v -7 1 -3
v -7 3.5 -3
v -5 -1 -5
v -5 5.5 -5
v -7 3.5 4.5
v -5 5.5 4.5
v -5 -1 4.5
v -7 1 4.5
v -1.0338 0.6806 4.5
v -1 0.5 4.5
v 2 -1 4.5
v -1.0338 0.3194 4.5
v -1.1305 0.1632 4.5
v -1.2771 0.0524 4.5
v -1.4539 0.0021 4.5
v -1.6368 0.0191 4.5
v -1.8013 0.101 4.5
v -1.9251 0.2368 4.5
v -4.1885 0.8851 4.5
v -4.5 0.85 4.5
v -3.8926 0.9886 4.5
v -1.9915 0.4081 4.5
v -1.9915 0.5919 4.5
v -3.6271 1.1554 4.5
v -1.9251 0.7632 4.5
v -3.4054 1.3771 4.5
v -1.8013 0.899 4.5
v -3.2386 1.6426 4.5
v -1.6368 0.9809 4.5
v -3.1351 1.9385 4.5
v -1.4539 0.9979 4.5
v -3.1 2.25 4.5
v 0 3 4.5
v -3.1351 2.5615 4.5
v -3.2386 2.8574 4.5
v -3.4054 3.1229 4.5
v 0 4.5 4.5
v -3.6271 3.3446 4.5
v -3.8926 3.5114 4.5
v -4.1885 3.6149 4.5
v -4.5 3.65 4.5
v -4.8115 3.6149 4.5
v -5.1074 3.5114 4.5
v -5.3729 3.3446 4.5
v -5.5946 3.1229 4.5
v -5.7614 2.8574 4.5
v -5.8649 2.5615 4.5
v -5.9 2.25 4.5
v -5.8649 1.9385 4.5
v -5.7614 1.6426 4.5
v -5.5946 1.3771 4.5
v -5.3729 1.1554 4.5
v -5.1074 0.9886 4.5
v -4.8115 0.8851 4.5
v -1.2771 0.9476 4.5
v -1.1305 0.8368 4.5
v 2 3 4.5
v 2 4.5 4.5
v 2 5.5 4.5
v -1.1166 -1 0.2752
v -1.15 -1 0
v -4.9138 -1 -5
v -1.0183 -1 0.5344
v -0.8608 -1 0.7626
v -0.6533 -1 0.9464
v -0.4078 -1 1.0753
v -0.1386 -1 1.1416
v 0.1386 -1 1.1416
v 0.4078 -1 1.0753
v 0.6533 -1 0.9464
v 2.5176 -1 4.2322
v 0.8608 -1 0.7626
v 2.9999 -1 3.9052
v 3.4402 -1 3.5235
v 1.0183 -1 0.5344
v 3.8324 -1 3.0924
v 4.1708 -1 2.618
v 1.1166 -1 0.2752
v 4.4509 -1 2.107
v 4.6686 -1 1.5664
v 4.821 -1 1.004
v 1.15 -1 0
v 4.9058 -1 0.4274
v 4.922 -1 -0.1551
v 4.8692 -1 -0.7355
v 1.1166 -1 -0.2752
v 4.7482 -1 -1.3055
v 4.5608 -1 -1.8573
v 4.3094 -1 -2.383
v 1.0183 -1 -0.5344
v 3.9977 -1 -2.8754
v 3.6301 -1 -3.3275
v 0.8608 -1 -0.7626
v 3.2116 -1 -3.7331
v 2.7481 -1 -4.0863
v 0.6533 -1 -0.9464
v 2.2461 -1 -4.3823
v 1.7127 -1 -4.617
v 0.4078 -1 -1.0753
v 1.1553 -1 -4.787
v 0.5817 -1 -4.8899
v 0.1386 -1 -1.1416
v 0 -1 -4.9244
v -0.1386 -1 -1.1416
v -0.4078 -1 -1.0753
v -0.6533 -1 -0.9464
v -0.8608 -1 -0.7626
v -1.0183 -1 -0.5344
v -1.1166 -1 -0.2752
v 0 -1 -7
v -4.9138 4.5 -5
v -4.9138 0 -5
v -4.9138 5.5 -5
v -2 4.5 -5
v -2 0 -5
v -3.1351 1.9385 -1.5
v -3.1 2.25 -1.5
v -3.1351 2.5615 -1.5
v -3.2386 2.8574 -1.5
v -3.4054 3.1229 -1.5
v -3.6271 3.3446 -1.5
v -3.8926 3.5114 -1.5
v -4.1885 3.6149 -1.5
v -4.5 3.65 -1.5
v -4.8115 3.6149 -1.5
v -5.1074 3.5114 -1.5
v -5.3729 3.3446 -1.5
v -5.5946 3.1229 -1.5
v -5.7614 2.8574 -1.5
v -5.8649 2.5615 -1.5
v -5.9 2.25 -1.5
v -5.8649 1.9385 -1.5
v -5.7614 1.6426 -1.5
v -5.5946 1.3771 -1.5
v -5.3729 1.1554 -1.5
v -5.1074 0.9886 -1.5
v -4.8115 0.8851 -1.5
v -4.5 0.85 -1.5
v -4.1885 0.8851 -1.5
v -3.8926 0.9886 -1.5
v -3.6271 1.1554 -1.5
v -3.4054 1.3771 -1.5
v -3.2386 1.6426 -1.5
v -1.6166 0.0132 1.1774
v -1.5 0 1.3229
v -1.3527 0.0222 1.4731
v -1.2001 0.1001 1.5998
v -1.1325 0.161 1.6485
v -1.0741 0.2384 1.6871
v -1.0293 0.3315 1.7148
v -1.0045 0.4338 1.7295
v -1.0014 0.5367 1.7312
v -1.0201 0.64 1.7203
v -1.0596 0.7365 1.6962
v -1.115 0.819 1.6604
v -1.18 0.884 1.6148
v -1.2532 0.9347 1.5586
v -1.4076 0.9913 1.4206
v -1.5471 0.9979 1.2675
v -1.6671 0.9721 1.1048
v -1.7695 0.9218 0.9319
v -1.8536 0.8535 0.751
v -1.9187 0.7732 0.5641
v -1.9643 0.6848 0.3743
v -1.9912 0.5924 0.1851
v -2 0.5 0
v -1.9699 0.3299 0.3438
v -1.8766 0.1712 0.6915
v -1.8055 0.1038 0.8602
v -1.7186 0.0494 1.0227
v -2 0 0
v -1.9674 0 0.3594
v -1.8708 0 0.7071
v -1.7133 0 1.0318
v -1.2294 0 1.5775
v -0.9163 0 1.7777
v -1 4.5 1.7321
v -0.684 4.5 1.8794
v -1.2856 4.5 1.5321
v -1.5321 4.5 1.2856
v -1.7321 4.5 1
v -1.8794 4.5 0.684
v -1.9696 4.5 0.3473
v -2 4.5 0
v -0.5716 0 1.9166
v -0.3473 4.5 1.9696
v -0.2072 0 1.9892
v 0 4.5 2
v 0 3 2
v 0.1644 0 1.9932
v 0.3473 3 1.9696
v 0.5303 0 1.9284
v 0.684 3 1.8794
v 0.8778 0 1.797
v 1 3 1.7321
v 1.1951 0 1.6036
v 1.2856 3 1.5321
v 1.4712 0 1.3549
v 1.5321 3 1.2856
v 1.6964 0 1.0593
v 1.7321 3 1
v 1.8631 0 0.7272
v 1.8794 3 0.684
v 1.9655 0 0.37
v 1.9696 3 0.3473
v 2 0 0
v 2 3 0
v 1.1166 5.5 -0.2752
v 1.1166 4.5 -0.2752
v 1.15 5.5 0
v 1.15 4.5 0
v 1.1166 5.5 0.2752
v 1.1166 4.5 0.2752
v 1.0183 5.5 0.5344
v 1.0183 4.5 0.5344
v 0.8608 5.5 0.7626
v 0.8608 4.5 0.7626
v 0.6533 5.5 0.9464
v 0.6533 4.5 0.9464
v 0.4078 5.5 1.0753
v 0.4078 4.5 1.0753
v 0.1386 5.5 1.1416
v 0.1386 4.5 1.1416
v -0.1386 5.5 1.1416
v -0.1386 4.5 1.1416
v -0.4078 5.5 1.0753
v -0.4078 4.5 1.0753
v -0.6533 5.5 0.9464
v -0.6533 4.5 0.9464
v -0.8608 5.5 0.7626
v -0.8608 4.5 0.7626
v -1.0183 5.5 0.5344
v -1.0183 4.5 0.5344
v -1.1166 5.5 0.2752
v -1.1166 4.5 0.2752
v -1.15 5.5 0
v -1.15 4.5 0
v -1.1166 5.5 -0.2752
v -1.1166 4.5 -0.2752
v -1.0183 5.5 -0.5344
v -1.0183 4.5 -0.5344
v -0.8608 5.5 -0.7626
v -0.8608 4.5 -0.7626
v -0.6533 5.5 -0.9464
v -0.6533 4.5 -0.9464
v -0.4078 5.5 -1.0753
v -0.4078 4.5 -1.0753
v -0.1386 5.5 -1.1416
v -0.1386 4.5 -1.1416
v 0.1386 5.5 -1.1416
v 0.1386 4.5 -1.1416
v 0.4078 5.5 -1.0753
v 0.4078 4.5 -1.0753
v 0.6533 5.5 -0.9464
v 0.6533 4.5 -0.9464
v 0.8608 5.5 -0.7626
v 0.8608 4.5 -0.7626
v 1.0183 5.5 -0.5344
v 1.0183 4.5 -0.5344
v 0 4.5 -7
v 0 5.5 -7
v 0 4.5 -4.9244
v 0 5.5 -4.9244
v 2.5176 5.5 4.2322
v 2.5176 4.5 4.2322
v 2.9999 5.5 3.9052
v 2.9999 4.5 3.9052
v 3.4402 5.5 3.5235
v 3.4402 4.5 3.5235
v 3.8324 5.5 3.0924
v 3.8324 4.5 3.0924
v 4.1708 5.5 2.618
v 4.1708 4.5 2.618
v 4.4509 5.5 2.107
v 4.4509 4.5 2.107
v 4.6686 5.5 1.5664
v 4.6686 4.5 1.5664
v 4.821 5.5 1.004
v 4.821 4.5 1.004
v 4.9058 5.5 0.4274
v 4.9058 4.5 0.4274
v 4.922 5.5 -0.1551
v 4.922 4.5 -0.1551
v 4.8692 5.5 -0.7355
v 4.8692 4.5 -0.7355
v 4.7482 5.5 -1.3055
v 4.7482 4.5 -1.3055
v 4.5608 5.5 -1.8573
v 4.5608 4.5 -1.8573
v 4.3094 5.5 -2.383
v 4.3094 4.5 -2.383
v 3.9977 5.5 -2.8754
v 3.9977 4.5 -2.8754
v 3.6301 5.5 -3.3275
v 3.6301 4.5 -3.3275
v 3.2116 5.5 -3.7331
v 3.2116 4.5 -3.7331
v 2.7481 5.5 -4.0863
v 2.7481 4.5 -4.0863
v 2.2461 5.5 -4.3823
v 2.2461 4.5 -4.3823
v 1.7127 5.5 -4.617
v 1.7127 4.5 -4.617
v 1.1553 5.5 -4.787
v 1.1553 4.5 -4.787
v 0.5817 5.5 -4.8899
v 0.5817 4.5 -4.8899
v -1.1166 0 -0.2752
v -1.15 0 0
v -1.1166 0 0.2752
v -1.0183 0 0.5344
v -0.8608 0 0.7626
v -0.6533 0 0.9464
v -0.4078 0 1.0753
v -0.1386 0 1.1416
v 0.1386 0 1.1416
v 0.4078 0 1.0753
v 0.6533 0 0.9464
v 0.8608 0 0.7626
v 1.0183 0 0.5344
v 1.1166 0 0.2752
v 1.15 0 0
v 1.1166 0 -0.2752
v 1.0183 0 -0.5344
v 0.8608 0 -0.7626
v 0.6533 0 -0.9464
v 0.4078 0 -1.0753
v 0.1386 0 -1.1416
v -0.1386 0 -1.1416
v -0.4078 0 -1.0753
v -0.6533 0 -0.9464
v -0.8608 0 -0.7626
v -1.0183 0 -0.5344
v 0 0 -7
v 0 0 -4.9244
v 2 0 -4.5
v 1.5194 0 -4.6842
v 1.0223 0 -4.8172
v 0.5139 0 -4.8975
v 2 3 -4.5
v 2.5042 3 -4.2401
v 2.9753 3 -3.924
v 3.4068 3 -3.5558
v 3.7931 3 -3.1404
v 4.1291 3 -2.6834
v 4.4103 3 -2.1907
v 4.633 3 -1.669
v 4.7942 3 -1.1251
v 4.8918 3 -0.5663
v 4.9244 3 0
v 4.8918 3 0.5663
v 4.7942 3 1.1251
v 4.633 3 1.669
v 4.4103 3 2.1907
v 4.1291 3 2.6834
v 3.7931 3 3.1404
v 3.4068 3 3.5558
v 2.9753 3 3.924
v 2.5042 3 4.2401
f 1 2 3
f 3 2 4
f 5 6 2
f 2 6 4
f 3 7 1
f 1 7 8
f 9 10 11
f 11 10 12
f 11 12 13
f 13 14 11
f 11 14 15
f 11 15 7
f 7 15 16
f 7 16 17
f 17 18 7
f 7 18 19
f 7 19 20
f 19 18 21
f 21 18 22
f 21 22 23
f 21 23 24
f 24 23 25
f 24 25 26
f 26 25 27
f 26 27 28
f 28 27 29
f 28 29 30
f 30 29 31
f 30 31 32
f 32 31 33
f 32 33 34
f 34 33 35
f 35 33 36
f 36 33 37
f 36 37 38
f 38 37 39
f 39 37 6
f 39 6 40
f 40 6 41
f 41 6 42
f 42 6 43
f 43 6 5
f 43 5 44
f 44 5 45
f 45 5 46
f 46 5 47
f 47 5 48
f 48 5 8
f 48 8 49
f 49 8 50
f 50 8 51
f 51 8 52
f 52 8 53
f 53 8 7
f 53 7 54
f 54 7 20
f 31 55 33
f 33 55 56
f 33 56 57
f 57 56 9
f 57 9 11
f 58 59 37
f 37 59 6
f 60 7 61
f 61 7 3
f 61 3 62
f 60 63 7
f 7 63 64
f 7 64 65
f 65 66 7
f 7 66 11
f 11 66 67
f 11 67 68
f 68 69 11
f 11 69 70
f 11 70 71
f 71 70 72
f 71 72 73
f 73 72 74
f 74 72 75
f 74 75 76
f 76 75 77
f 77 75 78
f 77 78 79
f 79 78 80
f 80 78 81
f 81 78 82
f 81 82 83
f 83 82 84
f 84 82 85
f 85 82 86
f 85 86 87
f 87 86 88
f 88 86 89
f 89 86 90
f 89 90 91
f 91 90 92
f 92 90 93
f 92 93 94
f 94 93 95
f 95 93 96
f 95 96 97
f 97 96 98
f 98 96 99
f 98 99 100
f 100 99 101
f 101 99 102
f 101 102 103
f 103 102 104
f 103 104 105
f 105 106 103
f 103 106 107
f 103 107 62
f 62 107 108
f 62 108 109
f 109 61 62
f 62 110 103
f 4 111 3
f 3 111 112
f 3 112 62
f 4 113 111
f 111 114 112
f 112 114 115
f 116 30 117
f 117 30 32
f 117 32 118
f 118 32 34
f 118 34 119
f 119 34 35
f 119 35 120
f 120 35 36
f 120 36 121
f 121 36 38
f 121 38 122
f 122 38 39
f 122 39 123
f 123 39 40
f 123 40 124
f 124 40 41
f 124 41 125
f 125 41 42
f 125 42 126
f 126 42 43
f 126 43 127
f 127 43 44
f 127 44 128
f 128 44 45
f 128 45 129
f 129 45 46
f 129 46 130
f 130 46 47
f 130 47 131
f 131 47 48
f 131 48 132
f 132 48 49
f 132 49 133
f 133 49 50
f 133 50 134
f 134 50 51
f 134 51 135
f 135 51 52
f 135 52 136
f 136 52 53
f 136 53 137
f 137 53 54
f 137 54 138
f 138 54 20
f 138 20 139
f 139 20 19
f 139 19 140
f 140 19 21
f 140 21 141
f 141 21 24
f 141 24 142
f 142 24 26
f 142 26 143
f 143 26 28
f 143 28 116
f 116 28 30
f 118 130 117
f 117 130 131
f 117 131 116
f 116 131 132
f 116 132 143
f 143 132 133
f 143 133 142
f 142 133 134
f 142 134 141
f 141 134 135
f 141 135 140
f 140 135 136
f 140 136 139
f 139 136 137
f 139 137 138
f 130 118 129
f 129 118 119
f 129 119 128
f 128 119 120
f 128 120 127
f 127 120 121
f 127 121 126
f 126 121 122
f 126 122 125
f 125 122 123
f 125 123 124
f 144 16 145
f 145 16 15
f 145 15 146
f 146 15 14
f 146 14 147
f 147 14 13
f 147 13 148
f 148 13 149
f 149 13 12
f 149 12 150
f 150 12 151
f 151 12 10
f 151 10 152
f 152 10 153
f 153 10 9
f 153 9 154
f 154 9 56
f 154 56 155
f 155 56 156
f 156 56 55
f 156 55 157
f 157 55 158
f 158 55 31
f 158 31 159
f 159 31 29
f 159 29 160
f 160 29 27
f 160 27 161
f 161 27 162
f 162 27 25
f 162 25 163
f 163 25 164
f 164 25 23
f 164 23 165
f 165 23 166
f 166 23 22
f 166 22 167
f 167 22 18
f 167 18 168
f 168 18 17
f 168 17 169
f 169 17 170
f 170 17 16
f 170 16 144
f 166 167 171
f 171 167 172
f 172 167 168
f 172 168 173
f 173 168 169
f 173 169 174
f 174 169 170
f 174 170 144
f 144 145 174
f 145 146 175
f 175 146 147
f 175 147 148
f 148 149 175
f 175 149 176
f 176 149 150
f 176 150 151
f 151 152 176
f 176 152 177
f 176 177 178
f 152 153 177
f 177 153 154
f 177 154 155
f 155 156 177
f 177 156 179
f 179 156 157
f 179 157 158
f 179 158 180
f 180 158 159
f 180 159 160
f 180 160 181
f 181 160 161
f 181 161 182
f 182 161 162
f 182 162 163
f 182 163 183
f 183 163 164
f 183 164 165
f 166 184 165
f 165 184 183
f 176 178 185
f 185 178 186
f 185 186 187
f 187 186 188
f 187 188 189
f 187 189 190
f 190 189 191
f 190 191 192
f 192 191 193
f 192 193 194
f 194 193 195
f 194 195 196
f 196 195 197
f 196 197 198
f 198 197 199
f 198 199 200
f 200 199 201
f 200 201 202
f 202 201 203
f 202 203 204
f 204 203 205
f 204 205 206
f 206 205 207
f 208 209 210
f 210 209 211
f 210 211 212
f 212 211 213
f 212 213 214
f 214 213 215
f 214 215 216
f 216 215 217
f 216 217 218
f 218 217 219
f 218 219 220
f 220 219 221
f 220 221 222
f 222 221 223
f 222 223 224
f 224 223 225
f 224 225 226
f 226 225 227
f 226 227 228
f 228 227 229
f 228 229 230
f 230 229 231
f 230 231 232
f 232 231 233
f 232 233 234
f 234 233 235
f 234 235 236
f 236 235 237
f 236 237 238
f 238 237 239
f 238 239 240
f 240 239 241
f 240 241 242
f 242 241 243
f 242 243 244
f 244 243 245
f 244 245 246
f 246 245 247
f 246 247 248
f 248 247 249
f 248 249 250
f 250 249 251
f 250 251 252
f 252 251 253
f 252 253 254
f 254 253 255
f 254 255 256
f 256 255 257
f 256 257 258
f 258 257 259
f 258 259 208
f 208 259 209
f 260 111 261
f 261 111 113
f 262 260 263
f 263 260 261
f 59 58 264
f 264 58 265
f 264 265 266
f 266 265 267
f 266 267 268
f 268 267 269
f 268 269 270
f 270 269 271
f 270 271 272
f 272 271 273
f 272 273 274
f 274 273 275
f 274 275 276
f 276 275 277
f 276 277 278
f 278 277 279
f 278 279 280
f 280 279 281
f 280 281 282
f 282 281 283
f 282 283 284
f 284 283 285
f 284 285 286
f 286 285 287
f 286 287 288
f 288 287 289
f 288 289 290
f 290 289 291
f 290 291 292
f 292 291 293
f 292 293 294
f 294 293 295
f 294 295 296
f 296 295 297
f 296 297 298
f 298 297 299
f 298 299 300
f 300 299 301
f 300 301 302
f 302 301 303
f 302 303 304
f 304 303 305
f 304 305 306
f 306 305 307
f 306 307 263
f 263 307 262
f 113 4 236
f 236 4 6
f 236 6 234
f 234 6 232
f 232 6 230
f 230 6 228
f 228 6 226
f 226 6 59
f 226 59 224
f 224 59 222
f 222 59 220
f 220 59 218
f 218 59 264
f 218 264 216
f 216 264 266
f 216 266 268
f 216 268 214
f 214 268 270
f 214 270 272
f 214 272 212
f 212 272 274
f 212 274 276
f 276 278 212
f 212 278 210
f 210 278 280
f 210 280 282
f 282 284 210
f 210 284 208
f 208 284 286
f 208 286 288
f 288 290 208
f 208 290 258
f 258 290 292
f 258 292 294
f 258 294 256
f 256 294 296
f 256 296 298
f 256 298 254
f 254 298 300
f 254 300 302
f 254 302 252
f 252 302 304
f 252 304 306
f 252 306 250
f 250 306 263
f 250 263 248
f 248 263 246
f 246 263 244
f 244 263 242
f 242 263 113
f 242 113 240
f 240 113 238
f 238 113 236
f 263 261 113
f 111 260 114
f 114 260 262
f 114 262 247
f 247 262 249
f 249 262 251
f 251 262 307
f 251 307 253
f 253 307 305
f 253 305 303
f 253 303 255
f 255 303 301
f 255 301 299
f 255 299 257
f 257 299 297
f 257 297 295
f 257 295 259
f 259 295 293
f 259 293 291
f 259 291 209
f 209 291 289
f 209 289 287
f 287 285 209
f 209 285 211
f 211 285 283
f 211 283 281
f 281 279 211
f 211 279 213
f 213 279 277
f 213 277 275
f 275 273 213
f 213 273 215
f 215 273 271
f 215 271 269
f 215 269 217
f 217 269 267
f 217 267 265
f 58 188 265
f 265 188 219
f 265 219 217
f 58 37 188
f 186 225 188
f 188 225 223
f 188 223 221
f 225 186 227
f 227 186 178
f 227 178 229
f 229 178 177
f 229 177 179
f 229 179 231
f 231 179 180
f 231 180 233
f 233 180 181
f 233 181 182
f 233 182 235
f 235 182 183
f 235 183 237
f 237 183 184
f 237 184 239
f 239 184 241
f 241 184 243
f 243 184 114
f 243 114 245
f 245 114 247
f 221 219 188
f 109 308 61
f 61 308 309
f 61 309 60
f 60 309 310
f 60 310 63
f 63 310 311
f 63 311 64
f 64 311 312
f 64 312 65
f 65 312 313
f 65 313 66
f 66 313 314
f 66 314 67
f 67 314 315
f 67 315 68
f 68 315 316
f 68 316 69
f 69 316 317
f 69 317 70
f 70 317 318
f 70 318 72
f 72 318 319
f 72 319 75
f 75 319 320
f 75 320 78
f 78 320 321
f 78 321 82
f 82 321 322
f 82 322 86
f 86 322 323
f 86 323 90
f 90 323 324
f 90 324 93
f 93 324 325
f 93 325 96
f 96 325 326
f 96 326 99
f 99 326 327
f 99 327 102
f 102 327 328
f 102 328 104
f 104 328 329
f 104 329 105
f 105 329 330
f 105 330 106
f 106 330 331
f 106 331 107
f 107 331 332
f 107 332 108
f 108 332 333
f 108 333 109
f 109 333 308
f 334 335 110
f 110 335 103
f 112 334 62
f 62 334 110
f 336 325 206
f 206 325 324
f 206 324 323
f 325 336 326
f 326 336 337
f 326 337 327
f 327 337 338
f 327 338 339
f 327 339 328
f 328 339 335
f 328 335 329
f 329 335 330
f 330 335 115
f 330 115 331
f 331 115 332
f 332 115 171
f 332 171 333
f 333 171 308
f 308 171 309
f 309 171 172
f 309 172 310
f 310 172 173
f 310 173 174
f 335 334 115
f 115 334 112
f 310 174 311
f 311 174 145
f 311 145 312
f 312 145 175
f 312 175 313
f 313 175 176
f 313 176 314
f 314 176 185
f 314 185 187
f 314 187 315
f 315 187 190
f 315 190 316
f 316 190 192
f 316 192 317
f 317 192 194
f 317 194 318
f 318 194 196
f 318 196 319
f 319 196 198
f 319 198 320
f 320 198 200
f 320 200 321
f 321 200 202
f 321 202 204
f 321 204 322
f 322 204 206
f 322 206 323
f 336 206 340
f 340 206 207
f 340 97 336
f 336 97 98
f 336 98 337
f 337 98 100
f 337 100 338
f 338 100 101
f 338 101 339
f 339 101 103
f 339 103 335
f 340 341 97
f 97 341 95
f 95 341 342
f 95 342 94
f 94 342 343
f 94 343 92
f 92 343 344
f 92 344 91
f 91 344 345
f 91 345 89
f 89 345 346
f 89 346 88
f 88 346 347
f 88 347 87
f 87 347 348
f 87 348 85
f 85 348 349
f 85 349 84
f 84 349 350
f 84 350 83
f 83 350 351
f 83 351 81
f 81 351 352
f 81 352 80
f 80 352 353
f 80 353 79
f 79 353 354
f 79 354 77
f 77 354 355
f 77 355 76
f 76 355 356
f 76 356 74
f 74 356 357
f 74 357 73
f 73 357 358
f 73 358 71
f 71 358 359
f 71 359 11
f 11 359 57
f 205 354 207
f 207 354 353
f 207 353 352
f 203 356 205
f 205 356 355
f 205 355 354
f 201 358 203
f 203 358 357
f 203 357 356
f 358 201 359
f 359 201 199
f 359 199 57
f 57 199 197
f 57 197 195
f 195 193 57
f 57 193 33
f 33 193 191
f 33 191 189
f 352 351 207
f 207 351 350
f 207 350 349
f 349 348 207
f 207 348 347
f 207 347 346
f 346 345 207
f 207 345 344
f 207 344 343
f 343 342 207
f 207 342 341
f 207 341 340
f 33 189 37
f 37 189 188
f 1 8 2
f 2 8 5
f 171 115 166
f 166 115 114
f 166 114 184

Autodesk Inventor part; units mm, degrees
ref_plane "YZ Plane" through (0, 0, 0) normal (1, 0, 0) x (0, 1, 0)
ref_plane "XZ Plane" through (0, 0, 0) normal (0, 1, 0) x (-1, 0, 0)
ref_plane "XY Plane" through (0, 0, 0) normal (0, 0, 1) x (1, 0, 0)
sketch "スケッチ1" plane through (0, 0, 0) normal (0, 1, 0) x (-1, 0, 0)
  circle A0 centre (0, 0) radius 1.15
  circle A1 centre (0, 0) radius 2
  circle A2 centre (0, 0) radius 5
  line L0 (0, 0) -> (7, 0)
  line L1 (7, 0) -> (7, 4.5)
  line L2 (7, 4.5) -> (0, 4.5)
  line L3 (0, 4.5) -> (0, 0)
  line L4 (0, 0) -> (7, 0)
  line L5 (7, 0) -> (7, -5)
  line L6 (7, -5) -> (0, -5)
  line L7 (0, -5) -> (0, 0)
  line L8 (0, 4.5) -> (-2, 4.5)
  line L9 (-2, 4.5) -> (-2, 0)
  line L10 (-2, 0) -> (0, 0)
  line L11 (0, 0) -> (0, 4.5)
  circle A3 centre (0, 0) radius 3
  line L12 (-2, 0) -> (-2, -5)
  line L13 (-2, -5) -> (0, -5)
  line L14 (2, 0) -> (2, -5)
  circle A4 centre (0, 0) radius 4.9244
  line L15 (-2, 0) -> (-4.9244, 0)
  line L16 (0, -4.9244) -> (0, -5.9244)
  line L17 (0, -5.9244) -> (7, -5.9244)
  line L18 (7, -5.9244) -> (7, -5)
  line L19 (7, -5) -> (0, -5.9244)
  line L20 (0, -5.9244) -> (4.9138, -5)
  line L21 (0, -5) -> (0, -7)
  line L22 (0, -7) -> (4.9138, -5)
  point P0 (0, 2)
  point P1 (-2, 2.2361)
  point P2 (-2, -2.2361)
  point P3 (-2, -4.5826)
  point P4 (-2, -4.5)
  point P5 (0, -4.9244)
  dimension "d2" = 10
  dimension "d0" = 2.3
  dimension "d1" = 4
  dimension "d3" = 7
  dimension "d4" = 4.5
  dimension "d5" = 6
  dimension "d22" = 1
  dimension "d34" = 5
  dimension "d39" = 2
extrude "押し出し1" add sketch "スケッチ1" along normal blind 4.5 contours A1 L3 A3 L0 | L0 A3 L14 | A3 L3 L2 A4 L0 | L0 A4 L14 A3 | A4 L2 A2 L0 | L0 A2 L14 A4 | L0 L5 L6 L14 A2 | A2 L2 L1 L0
extrude "押し出し2" add sketch "スケッチ1" along normal blind 3 contours A1 L9 A3 L3 | L15 A3 L9 | L12 A3 L15 | A3 L9 L8 L3 | A3 L15 A4 L9 | L12 A4 L15 A3
extrude "押し出し3" add sketch "スケッチ1" against normal blind 1 contours L0 A1 L7 A0 | A0 L3 A1 L0 | A0 L10 A1 L3 | L7 A1 L10 A0 | L14 A3 L7 A1 | A1 L3 A3 L0 | L0 A3 L14 | A1 L9 A3 L3 | L7 A3 L12 A1 | A3 L3 L2 A4 L0 | L0 A4 L14 A3 | L14 A4 L7 A3 | L15 A3 L9 | L12 A3 L15 | A3 L9 L8 L3 | L7 A4 L12 A3 | A4 L2 A2 L0 | L0 A2 L14 A4 | L14 A2 L7 A4 | A3 L15 A4 L9 | L12 A4 L15 A3 | L0 L5 L6 L14 A2 | A2 L2 L1 L0 | L14 L6 A2 | L6 L20 L16 | L19 L22 L17 | L20 L22 L19 | L17 L22 L21
sketch "スケッチ2" plane through (0, 4.5, 0) normal (0, 1, 0) x (1, 0, 0)
  circle A0 centre (0, 0) radius 1.15
  circle A1 centre (0, 0) radius 2
  circle A2 centre (0, 0) radius 4.9244
  line L0 (0, 0) -> (2, 0)
  line L1 (2, 0) -> (2, -4.5)
  line L2 (2, -4.5) -> (0, -4.5)
  line L3 (0, -4.5) -> (0, 0)
  line L4 (-2, 5) -> (-7, 5) projected
  line L5 (0, -4.5) -> (-7, -4.5)
  line L6 (-7, -4.5) -> (-7, 5)
  line L7 (-7, 5) -> (0, 5)
  line L8 (0, 5) -> (0, -4.5)
  line L9 (0, 0) -> (2, 0)
  line L10 (2, 0) -> (2, 5)
  line L11 (2, 5) -> (0, 5)
  line L12 (0, 5) -> (0, 0)
  line L13 (0, 5) -> (-7, 5)
  line L14 (0, 5.9244) -> (0, 5)
  line L15 (-7, 5) -> (0, 5.9244)
  line L16 (0, 5.9244) -> (-4.9138, 5)
  line L17 (-2, 5) -> (-7, 5) projected
  line L18 (0, 5) -> (0, 7)
  line L19 (0, 7) -> (-4.9138, 5)
  point P0 (0, 4.9244)
  dimension "d12" = 4
  dimension "d35" = 5
  dimension "d40" = 2
extrude "押し出し4" add sketch "スケッチ2" along normal blind 1 contours L0 A1 L3 A0 | A0 L8 A1 L0 | A0 L3 A1 L8 | L1 L2 L3 A1 | L10 A2 L1 | A1 L8 A2 L10 | A1 L3 L5 A2 L8 | A2 L5 L6 L4 L7 L8 | L7 L4 L16 L14 | L16 L19 L15 | L15 L19 L18
sketch "スケッチ4" plane through (0, 3, 4.5) normal (0, 0, 1) x (1, 0, 0)
  line L0 (-7, 2.5) -> (2, 2.5) projected
  line L1 (-7, 2.5) -> (-4.5, 2.5)
  line L2 (-4.5, 2.5) -> (-4.5, -0.75)
  line L3 (-4.5, -0.75) -> (-7, -0.75)
  line L4 (-7, -0.75) -> (-7, 2.5)
  circle A0 centre (-4.5, -0.75) radius 1.4
  line L5 (0, -3) -> (0, -2.5)
  line L6 (0, -2.5) -> (-1.5, -2.5)
  circle A1 centre (-1.5, -2.5) radius 0.5
  dimension "d23" = 2.5
  dimension "d24" = 3.25
  dimension "d25" = 2.8
  dimension "d26" = 0.5
  dimension "d27" = 1.5
  dimension "d28" = 1
extrude "押し出し6" cut sketch "スケッチ4" against normal blind 6 contours A0 L3 L2 | L2 L3 A0 | A1
chamfer "面取り2" distance 2 angle 45 3 edges at (-7, 5.5, -0.25) (-7, -1, -0.25) (-7, 2.25, -5)
properties part number "rod5.6"
